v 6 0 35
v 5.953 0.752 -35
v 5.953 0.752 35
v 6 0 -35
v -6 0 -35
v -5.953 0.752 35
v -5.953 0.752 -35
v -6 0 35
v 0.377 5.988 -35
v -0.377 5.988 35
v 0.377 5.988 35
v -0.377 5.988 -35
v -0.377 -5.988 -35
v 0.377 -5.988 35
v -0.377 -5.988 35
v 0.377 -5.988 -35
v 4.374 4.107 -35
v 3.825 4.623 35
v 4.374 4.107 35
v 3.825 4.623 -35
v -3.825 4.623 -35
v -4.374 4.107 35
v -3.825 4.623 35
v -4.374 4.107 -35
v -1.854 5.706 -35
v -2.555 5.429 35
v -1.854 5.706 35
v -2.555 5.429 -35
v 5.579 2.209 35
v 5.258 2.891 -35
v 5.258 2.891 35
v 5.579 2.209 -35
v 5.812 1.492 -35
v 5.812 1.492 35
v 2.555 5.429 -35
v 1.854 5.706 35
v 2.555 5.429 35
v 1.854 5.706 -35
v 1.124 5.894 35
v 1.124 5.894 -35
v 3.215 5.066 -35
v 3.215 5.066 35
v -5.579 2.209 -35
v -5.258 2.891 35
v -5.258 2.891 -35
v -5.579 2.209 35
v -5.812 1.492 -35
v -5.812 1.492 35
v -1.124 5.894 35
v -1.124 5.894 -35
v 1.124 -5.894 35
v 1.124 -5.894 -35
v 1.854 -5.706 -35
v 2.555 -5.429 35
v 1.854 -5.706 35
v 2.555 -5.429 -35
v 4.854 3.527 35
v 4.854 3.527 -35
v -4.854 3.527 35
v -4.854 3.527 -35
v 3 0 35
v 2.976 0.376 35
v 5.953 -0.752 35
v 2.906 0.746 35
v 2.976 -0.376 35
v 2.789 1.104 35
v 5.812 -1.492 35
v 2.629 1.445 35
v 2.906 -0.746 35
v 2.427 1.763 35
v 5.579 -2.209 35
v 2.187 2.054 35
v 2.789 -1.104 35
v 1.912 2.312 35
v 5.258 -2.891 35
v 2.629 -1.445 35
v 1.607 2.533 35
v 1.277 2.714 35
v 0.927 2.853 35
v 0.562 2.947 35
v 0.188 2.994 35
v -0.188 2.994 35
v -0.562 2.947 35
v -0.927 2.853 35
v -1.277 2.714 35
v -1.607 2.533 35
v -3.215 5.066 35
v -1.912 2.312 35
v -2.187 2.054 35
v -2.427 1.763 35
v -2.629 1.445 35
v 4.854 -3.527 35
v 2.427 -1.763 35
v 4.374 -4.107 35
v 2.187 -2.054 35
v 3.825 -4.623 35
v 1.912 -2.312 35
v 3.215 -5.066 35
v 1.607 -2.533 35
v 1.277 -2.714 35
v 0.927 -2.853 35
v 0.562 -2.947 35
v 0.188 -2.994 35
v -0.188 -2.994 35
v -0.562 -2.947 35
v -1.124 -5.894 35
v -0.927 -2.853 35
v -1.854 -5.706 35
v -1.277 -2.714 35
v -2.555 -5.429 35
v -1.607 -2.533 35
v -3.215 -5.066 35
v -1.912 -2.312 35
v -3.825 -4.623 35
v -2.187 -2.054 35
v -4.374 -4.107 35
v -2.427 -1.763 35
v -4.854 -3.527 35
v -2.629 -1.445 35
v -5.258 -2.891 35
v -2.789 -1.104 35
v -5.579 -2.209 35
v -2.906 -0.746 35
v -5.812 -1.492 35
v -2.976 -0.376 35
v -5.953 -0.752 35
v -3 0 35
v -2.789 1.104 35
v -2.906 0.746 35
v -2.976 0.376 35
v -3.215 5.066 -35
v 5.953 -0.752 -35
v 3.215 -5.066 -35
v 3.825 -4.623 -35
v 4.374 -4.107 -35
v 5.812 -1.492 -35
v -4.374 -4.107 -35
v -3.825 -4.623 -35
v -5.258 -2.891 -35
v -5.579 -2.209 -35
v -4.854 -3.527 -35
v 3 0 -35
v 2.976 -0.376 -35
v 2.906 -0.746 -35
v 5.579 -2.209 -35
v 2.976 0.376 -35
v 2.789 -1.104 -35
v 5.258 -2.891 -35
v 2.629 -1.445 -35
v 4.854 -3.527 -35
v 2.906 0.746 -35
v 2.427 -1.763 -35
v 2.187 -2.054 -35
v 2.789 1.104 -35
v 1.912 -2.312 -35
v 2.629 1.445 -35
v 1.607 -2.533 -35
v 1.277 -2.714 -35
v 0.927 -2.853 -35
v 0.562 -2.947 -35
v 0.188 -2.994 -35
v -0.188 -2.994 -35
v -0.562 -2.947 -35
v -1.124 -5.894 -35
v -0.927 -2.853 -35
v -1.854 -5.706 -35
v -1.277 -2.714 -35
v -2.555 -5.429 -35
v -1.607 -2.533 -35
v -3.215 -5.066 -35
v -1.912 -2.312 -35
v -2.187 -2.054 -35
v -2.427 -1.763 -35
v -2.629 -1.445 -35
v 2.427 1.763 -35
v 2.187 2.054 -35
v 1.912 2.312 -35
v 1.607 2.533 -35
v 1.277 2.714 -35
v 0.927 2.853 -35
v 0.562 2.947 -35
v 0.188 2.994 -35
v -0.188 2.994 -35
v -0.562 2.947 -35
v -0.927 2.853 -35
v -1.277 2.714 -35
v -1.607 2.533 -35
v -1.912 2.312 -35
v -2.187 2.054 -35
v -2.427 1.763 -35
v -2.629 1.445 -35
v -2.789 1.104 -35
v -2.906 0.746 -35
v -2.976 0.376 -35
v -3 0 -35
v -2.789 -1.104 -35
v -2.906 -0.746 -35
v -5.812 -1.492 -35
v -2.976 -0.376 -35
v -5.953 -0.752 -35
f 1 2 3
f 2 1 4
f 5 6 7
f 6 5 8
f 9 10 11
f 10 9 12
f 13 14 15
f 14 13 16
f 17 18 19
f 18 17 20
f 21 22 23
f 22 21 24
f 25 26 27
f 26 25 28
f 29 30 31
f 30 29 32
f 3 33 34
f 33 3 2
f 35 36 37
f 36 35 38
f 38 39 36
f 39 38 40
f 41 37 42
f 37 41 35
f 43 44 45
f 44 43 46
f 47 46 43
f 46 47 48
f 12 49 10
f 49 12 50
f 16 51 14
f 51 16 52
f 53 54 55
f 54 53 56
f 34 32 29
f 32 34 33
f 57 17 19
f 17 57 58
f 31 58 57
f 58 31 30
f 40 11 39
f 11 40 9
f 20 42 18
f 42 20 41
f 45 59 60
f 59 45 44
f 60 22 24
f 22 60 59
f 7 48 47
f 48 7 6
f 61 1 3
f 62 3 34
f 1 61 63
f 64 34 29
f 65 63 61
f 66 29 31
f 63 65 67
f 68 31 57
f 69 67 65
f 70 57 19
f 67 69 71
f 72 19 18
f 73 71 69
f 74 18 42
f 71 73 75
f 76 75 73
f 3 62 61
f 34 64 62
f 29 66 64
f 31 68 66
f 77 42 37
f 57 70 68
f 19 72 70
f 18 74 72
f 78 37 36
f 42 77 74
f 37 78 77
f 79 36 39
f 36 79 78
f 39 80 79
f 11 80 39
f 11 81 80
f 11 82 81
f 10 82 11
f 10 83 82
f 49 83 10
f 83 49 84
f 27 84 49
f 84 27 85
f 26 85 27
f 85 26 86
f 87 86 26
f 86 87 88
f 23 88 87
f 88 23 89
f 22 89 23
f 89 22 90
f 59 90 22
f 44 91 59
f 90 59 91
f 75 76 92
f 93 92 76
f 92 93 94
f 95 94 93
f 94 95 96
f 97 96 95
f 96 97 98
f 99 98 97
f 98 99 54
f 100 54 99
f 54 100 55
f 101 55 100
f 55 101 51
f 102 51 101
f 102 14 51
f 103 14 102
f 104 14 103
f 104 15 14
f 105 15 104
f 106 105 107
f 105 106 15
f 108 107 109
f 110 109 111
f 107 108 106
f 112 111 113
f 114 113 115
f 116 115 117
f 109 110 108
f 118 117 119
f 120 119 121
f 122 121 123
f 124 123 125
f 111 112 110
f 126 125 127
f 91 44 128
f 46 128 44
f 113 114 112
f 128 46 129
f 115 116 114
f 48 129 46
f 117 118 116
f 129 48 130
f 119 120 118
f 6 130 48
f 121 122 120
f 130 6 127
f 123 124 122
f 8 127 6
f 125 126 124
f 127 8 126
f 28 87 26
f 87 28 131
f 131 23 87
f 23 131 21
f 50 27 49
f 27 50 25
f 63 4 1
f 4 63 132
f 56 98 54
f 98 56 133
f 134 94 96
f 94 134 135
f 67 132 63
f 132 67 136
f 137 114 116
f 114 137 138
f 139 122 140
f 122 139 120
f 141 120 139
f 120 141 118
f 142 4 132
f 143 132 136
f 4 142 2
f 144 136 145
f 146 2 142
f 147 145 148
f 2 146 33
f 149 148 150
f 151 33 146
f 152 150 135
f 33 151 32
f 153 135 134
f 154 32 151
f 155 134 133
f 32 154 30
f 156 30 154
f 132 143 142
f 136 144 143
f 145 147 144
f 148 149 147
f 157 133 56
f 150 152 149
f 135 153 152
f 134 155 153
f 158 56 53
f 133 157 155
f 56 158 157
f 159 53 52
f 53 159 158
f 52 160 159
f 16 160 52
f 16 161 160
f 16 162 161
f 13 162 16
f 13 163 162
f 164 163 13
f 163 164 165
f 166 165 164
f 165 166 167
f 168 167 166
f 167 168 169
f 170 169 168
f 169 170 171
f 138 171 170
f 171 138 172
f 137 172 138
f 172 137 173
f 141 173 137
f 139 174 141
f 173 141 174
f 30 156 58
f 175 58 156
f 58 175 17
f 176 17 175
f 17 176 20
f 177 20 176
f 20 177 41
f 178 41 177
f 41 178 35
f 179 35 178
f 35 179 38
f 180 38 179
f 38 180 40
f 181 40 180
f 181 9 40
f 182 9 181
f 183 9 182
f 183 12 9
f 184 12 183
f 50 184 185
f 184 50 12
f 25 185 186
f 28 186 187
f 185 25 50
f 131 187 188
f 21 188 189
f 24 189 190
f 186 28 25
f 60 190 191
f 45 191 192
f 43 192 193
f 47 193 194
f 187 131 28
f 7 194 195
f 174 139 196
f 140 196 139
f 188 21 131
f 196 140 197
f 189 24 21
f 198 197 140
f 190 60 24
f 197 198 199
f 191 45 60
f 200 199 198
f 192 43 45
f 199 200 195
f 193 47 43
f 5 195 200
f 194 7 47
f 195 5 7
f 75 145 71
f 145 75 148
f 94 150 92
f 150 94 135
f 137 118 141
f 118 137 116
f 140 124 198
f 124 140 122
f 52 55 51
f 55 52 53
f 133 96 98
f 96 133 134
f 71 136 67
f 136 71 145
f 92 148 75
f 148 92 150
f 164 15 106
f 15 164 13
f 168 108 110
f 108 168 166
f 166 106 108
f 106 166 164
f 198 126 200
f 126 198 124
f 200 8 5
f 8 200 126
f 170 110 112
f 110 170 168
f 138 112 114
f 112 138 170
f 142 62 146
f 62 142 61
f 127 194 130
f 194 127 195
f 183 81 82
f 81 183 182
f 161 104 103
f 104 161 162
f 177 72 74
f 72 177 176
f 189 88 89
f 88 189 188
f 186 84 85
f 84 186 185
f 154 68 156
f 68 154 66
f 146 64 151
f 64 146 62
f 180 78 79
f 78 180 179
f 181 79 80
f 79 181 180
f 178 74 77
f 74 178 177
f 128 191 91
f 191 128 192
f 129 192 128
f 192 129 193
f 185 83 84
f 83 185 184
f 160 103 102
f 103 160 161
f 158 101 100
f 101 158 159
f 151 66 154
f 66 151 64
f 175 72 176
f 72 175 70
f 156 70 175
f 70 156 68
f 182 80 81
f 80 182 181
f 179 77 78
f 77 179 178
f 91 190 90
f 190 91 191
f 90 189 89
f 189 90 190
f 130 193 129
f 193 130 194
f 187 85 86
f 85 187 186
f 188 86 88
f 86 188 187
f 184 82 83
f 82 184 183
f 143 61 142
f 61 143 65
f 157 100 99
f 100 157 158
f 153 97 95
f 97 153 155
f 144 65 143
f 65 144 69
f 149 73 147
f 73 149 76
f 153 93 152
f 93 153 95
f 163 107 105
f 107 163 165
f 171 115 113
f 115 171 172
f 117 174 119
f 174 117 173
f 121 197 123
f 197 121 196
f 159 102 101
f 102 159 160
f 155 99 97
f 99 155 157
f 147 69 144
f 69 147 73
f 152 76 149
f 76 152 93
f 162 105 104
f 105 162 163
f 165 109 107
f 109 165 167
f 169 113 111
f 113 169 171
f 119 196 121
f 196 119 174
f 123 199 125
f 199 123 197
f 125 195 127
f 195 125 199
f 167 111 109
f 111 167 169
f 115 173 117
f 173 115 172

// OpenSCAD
$fn = 50;


difference() {
	union() {
		translate(v = [0, 0, -35.0000000000]) {
			cylinder(h = 70, r = 6.0000000000);
		}
	}
	union() {
		translate(v = [0, 0, -100.0000000000]) {
			cylinder(h = 200, r = 3);
		}
	}
}
